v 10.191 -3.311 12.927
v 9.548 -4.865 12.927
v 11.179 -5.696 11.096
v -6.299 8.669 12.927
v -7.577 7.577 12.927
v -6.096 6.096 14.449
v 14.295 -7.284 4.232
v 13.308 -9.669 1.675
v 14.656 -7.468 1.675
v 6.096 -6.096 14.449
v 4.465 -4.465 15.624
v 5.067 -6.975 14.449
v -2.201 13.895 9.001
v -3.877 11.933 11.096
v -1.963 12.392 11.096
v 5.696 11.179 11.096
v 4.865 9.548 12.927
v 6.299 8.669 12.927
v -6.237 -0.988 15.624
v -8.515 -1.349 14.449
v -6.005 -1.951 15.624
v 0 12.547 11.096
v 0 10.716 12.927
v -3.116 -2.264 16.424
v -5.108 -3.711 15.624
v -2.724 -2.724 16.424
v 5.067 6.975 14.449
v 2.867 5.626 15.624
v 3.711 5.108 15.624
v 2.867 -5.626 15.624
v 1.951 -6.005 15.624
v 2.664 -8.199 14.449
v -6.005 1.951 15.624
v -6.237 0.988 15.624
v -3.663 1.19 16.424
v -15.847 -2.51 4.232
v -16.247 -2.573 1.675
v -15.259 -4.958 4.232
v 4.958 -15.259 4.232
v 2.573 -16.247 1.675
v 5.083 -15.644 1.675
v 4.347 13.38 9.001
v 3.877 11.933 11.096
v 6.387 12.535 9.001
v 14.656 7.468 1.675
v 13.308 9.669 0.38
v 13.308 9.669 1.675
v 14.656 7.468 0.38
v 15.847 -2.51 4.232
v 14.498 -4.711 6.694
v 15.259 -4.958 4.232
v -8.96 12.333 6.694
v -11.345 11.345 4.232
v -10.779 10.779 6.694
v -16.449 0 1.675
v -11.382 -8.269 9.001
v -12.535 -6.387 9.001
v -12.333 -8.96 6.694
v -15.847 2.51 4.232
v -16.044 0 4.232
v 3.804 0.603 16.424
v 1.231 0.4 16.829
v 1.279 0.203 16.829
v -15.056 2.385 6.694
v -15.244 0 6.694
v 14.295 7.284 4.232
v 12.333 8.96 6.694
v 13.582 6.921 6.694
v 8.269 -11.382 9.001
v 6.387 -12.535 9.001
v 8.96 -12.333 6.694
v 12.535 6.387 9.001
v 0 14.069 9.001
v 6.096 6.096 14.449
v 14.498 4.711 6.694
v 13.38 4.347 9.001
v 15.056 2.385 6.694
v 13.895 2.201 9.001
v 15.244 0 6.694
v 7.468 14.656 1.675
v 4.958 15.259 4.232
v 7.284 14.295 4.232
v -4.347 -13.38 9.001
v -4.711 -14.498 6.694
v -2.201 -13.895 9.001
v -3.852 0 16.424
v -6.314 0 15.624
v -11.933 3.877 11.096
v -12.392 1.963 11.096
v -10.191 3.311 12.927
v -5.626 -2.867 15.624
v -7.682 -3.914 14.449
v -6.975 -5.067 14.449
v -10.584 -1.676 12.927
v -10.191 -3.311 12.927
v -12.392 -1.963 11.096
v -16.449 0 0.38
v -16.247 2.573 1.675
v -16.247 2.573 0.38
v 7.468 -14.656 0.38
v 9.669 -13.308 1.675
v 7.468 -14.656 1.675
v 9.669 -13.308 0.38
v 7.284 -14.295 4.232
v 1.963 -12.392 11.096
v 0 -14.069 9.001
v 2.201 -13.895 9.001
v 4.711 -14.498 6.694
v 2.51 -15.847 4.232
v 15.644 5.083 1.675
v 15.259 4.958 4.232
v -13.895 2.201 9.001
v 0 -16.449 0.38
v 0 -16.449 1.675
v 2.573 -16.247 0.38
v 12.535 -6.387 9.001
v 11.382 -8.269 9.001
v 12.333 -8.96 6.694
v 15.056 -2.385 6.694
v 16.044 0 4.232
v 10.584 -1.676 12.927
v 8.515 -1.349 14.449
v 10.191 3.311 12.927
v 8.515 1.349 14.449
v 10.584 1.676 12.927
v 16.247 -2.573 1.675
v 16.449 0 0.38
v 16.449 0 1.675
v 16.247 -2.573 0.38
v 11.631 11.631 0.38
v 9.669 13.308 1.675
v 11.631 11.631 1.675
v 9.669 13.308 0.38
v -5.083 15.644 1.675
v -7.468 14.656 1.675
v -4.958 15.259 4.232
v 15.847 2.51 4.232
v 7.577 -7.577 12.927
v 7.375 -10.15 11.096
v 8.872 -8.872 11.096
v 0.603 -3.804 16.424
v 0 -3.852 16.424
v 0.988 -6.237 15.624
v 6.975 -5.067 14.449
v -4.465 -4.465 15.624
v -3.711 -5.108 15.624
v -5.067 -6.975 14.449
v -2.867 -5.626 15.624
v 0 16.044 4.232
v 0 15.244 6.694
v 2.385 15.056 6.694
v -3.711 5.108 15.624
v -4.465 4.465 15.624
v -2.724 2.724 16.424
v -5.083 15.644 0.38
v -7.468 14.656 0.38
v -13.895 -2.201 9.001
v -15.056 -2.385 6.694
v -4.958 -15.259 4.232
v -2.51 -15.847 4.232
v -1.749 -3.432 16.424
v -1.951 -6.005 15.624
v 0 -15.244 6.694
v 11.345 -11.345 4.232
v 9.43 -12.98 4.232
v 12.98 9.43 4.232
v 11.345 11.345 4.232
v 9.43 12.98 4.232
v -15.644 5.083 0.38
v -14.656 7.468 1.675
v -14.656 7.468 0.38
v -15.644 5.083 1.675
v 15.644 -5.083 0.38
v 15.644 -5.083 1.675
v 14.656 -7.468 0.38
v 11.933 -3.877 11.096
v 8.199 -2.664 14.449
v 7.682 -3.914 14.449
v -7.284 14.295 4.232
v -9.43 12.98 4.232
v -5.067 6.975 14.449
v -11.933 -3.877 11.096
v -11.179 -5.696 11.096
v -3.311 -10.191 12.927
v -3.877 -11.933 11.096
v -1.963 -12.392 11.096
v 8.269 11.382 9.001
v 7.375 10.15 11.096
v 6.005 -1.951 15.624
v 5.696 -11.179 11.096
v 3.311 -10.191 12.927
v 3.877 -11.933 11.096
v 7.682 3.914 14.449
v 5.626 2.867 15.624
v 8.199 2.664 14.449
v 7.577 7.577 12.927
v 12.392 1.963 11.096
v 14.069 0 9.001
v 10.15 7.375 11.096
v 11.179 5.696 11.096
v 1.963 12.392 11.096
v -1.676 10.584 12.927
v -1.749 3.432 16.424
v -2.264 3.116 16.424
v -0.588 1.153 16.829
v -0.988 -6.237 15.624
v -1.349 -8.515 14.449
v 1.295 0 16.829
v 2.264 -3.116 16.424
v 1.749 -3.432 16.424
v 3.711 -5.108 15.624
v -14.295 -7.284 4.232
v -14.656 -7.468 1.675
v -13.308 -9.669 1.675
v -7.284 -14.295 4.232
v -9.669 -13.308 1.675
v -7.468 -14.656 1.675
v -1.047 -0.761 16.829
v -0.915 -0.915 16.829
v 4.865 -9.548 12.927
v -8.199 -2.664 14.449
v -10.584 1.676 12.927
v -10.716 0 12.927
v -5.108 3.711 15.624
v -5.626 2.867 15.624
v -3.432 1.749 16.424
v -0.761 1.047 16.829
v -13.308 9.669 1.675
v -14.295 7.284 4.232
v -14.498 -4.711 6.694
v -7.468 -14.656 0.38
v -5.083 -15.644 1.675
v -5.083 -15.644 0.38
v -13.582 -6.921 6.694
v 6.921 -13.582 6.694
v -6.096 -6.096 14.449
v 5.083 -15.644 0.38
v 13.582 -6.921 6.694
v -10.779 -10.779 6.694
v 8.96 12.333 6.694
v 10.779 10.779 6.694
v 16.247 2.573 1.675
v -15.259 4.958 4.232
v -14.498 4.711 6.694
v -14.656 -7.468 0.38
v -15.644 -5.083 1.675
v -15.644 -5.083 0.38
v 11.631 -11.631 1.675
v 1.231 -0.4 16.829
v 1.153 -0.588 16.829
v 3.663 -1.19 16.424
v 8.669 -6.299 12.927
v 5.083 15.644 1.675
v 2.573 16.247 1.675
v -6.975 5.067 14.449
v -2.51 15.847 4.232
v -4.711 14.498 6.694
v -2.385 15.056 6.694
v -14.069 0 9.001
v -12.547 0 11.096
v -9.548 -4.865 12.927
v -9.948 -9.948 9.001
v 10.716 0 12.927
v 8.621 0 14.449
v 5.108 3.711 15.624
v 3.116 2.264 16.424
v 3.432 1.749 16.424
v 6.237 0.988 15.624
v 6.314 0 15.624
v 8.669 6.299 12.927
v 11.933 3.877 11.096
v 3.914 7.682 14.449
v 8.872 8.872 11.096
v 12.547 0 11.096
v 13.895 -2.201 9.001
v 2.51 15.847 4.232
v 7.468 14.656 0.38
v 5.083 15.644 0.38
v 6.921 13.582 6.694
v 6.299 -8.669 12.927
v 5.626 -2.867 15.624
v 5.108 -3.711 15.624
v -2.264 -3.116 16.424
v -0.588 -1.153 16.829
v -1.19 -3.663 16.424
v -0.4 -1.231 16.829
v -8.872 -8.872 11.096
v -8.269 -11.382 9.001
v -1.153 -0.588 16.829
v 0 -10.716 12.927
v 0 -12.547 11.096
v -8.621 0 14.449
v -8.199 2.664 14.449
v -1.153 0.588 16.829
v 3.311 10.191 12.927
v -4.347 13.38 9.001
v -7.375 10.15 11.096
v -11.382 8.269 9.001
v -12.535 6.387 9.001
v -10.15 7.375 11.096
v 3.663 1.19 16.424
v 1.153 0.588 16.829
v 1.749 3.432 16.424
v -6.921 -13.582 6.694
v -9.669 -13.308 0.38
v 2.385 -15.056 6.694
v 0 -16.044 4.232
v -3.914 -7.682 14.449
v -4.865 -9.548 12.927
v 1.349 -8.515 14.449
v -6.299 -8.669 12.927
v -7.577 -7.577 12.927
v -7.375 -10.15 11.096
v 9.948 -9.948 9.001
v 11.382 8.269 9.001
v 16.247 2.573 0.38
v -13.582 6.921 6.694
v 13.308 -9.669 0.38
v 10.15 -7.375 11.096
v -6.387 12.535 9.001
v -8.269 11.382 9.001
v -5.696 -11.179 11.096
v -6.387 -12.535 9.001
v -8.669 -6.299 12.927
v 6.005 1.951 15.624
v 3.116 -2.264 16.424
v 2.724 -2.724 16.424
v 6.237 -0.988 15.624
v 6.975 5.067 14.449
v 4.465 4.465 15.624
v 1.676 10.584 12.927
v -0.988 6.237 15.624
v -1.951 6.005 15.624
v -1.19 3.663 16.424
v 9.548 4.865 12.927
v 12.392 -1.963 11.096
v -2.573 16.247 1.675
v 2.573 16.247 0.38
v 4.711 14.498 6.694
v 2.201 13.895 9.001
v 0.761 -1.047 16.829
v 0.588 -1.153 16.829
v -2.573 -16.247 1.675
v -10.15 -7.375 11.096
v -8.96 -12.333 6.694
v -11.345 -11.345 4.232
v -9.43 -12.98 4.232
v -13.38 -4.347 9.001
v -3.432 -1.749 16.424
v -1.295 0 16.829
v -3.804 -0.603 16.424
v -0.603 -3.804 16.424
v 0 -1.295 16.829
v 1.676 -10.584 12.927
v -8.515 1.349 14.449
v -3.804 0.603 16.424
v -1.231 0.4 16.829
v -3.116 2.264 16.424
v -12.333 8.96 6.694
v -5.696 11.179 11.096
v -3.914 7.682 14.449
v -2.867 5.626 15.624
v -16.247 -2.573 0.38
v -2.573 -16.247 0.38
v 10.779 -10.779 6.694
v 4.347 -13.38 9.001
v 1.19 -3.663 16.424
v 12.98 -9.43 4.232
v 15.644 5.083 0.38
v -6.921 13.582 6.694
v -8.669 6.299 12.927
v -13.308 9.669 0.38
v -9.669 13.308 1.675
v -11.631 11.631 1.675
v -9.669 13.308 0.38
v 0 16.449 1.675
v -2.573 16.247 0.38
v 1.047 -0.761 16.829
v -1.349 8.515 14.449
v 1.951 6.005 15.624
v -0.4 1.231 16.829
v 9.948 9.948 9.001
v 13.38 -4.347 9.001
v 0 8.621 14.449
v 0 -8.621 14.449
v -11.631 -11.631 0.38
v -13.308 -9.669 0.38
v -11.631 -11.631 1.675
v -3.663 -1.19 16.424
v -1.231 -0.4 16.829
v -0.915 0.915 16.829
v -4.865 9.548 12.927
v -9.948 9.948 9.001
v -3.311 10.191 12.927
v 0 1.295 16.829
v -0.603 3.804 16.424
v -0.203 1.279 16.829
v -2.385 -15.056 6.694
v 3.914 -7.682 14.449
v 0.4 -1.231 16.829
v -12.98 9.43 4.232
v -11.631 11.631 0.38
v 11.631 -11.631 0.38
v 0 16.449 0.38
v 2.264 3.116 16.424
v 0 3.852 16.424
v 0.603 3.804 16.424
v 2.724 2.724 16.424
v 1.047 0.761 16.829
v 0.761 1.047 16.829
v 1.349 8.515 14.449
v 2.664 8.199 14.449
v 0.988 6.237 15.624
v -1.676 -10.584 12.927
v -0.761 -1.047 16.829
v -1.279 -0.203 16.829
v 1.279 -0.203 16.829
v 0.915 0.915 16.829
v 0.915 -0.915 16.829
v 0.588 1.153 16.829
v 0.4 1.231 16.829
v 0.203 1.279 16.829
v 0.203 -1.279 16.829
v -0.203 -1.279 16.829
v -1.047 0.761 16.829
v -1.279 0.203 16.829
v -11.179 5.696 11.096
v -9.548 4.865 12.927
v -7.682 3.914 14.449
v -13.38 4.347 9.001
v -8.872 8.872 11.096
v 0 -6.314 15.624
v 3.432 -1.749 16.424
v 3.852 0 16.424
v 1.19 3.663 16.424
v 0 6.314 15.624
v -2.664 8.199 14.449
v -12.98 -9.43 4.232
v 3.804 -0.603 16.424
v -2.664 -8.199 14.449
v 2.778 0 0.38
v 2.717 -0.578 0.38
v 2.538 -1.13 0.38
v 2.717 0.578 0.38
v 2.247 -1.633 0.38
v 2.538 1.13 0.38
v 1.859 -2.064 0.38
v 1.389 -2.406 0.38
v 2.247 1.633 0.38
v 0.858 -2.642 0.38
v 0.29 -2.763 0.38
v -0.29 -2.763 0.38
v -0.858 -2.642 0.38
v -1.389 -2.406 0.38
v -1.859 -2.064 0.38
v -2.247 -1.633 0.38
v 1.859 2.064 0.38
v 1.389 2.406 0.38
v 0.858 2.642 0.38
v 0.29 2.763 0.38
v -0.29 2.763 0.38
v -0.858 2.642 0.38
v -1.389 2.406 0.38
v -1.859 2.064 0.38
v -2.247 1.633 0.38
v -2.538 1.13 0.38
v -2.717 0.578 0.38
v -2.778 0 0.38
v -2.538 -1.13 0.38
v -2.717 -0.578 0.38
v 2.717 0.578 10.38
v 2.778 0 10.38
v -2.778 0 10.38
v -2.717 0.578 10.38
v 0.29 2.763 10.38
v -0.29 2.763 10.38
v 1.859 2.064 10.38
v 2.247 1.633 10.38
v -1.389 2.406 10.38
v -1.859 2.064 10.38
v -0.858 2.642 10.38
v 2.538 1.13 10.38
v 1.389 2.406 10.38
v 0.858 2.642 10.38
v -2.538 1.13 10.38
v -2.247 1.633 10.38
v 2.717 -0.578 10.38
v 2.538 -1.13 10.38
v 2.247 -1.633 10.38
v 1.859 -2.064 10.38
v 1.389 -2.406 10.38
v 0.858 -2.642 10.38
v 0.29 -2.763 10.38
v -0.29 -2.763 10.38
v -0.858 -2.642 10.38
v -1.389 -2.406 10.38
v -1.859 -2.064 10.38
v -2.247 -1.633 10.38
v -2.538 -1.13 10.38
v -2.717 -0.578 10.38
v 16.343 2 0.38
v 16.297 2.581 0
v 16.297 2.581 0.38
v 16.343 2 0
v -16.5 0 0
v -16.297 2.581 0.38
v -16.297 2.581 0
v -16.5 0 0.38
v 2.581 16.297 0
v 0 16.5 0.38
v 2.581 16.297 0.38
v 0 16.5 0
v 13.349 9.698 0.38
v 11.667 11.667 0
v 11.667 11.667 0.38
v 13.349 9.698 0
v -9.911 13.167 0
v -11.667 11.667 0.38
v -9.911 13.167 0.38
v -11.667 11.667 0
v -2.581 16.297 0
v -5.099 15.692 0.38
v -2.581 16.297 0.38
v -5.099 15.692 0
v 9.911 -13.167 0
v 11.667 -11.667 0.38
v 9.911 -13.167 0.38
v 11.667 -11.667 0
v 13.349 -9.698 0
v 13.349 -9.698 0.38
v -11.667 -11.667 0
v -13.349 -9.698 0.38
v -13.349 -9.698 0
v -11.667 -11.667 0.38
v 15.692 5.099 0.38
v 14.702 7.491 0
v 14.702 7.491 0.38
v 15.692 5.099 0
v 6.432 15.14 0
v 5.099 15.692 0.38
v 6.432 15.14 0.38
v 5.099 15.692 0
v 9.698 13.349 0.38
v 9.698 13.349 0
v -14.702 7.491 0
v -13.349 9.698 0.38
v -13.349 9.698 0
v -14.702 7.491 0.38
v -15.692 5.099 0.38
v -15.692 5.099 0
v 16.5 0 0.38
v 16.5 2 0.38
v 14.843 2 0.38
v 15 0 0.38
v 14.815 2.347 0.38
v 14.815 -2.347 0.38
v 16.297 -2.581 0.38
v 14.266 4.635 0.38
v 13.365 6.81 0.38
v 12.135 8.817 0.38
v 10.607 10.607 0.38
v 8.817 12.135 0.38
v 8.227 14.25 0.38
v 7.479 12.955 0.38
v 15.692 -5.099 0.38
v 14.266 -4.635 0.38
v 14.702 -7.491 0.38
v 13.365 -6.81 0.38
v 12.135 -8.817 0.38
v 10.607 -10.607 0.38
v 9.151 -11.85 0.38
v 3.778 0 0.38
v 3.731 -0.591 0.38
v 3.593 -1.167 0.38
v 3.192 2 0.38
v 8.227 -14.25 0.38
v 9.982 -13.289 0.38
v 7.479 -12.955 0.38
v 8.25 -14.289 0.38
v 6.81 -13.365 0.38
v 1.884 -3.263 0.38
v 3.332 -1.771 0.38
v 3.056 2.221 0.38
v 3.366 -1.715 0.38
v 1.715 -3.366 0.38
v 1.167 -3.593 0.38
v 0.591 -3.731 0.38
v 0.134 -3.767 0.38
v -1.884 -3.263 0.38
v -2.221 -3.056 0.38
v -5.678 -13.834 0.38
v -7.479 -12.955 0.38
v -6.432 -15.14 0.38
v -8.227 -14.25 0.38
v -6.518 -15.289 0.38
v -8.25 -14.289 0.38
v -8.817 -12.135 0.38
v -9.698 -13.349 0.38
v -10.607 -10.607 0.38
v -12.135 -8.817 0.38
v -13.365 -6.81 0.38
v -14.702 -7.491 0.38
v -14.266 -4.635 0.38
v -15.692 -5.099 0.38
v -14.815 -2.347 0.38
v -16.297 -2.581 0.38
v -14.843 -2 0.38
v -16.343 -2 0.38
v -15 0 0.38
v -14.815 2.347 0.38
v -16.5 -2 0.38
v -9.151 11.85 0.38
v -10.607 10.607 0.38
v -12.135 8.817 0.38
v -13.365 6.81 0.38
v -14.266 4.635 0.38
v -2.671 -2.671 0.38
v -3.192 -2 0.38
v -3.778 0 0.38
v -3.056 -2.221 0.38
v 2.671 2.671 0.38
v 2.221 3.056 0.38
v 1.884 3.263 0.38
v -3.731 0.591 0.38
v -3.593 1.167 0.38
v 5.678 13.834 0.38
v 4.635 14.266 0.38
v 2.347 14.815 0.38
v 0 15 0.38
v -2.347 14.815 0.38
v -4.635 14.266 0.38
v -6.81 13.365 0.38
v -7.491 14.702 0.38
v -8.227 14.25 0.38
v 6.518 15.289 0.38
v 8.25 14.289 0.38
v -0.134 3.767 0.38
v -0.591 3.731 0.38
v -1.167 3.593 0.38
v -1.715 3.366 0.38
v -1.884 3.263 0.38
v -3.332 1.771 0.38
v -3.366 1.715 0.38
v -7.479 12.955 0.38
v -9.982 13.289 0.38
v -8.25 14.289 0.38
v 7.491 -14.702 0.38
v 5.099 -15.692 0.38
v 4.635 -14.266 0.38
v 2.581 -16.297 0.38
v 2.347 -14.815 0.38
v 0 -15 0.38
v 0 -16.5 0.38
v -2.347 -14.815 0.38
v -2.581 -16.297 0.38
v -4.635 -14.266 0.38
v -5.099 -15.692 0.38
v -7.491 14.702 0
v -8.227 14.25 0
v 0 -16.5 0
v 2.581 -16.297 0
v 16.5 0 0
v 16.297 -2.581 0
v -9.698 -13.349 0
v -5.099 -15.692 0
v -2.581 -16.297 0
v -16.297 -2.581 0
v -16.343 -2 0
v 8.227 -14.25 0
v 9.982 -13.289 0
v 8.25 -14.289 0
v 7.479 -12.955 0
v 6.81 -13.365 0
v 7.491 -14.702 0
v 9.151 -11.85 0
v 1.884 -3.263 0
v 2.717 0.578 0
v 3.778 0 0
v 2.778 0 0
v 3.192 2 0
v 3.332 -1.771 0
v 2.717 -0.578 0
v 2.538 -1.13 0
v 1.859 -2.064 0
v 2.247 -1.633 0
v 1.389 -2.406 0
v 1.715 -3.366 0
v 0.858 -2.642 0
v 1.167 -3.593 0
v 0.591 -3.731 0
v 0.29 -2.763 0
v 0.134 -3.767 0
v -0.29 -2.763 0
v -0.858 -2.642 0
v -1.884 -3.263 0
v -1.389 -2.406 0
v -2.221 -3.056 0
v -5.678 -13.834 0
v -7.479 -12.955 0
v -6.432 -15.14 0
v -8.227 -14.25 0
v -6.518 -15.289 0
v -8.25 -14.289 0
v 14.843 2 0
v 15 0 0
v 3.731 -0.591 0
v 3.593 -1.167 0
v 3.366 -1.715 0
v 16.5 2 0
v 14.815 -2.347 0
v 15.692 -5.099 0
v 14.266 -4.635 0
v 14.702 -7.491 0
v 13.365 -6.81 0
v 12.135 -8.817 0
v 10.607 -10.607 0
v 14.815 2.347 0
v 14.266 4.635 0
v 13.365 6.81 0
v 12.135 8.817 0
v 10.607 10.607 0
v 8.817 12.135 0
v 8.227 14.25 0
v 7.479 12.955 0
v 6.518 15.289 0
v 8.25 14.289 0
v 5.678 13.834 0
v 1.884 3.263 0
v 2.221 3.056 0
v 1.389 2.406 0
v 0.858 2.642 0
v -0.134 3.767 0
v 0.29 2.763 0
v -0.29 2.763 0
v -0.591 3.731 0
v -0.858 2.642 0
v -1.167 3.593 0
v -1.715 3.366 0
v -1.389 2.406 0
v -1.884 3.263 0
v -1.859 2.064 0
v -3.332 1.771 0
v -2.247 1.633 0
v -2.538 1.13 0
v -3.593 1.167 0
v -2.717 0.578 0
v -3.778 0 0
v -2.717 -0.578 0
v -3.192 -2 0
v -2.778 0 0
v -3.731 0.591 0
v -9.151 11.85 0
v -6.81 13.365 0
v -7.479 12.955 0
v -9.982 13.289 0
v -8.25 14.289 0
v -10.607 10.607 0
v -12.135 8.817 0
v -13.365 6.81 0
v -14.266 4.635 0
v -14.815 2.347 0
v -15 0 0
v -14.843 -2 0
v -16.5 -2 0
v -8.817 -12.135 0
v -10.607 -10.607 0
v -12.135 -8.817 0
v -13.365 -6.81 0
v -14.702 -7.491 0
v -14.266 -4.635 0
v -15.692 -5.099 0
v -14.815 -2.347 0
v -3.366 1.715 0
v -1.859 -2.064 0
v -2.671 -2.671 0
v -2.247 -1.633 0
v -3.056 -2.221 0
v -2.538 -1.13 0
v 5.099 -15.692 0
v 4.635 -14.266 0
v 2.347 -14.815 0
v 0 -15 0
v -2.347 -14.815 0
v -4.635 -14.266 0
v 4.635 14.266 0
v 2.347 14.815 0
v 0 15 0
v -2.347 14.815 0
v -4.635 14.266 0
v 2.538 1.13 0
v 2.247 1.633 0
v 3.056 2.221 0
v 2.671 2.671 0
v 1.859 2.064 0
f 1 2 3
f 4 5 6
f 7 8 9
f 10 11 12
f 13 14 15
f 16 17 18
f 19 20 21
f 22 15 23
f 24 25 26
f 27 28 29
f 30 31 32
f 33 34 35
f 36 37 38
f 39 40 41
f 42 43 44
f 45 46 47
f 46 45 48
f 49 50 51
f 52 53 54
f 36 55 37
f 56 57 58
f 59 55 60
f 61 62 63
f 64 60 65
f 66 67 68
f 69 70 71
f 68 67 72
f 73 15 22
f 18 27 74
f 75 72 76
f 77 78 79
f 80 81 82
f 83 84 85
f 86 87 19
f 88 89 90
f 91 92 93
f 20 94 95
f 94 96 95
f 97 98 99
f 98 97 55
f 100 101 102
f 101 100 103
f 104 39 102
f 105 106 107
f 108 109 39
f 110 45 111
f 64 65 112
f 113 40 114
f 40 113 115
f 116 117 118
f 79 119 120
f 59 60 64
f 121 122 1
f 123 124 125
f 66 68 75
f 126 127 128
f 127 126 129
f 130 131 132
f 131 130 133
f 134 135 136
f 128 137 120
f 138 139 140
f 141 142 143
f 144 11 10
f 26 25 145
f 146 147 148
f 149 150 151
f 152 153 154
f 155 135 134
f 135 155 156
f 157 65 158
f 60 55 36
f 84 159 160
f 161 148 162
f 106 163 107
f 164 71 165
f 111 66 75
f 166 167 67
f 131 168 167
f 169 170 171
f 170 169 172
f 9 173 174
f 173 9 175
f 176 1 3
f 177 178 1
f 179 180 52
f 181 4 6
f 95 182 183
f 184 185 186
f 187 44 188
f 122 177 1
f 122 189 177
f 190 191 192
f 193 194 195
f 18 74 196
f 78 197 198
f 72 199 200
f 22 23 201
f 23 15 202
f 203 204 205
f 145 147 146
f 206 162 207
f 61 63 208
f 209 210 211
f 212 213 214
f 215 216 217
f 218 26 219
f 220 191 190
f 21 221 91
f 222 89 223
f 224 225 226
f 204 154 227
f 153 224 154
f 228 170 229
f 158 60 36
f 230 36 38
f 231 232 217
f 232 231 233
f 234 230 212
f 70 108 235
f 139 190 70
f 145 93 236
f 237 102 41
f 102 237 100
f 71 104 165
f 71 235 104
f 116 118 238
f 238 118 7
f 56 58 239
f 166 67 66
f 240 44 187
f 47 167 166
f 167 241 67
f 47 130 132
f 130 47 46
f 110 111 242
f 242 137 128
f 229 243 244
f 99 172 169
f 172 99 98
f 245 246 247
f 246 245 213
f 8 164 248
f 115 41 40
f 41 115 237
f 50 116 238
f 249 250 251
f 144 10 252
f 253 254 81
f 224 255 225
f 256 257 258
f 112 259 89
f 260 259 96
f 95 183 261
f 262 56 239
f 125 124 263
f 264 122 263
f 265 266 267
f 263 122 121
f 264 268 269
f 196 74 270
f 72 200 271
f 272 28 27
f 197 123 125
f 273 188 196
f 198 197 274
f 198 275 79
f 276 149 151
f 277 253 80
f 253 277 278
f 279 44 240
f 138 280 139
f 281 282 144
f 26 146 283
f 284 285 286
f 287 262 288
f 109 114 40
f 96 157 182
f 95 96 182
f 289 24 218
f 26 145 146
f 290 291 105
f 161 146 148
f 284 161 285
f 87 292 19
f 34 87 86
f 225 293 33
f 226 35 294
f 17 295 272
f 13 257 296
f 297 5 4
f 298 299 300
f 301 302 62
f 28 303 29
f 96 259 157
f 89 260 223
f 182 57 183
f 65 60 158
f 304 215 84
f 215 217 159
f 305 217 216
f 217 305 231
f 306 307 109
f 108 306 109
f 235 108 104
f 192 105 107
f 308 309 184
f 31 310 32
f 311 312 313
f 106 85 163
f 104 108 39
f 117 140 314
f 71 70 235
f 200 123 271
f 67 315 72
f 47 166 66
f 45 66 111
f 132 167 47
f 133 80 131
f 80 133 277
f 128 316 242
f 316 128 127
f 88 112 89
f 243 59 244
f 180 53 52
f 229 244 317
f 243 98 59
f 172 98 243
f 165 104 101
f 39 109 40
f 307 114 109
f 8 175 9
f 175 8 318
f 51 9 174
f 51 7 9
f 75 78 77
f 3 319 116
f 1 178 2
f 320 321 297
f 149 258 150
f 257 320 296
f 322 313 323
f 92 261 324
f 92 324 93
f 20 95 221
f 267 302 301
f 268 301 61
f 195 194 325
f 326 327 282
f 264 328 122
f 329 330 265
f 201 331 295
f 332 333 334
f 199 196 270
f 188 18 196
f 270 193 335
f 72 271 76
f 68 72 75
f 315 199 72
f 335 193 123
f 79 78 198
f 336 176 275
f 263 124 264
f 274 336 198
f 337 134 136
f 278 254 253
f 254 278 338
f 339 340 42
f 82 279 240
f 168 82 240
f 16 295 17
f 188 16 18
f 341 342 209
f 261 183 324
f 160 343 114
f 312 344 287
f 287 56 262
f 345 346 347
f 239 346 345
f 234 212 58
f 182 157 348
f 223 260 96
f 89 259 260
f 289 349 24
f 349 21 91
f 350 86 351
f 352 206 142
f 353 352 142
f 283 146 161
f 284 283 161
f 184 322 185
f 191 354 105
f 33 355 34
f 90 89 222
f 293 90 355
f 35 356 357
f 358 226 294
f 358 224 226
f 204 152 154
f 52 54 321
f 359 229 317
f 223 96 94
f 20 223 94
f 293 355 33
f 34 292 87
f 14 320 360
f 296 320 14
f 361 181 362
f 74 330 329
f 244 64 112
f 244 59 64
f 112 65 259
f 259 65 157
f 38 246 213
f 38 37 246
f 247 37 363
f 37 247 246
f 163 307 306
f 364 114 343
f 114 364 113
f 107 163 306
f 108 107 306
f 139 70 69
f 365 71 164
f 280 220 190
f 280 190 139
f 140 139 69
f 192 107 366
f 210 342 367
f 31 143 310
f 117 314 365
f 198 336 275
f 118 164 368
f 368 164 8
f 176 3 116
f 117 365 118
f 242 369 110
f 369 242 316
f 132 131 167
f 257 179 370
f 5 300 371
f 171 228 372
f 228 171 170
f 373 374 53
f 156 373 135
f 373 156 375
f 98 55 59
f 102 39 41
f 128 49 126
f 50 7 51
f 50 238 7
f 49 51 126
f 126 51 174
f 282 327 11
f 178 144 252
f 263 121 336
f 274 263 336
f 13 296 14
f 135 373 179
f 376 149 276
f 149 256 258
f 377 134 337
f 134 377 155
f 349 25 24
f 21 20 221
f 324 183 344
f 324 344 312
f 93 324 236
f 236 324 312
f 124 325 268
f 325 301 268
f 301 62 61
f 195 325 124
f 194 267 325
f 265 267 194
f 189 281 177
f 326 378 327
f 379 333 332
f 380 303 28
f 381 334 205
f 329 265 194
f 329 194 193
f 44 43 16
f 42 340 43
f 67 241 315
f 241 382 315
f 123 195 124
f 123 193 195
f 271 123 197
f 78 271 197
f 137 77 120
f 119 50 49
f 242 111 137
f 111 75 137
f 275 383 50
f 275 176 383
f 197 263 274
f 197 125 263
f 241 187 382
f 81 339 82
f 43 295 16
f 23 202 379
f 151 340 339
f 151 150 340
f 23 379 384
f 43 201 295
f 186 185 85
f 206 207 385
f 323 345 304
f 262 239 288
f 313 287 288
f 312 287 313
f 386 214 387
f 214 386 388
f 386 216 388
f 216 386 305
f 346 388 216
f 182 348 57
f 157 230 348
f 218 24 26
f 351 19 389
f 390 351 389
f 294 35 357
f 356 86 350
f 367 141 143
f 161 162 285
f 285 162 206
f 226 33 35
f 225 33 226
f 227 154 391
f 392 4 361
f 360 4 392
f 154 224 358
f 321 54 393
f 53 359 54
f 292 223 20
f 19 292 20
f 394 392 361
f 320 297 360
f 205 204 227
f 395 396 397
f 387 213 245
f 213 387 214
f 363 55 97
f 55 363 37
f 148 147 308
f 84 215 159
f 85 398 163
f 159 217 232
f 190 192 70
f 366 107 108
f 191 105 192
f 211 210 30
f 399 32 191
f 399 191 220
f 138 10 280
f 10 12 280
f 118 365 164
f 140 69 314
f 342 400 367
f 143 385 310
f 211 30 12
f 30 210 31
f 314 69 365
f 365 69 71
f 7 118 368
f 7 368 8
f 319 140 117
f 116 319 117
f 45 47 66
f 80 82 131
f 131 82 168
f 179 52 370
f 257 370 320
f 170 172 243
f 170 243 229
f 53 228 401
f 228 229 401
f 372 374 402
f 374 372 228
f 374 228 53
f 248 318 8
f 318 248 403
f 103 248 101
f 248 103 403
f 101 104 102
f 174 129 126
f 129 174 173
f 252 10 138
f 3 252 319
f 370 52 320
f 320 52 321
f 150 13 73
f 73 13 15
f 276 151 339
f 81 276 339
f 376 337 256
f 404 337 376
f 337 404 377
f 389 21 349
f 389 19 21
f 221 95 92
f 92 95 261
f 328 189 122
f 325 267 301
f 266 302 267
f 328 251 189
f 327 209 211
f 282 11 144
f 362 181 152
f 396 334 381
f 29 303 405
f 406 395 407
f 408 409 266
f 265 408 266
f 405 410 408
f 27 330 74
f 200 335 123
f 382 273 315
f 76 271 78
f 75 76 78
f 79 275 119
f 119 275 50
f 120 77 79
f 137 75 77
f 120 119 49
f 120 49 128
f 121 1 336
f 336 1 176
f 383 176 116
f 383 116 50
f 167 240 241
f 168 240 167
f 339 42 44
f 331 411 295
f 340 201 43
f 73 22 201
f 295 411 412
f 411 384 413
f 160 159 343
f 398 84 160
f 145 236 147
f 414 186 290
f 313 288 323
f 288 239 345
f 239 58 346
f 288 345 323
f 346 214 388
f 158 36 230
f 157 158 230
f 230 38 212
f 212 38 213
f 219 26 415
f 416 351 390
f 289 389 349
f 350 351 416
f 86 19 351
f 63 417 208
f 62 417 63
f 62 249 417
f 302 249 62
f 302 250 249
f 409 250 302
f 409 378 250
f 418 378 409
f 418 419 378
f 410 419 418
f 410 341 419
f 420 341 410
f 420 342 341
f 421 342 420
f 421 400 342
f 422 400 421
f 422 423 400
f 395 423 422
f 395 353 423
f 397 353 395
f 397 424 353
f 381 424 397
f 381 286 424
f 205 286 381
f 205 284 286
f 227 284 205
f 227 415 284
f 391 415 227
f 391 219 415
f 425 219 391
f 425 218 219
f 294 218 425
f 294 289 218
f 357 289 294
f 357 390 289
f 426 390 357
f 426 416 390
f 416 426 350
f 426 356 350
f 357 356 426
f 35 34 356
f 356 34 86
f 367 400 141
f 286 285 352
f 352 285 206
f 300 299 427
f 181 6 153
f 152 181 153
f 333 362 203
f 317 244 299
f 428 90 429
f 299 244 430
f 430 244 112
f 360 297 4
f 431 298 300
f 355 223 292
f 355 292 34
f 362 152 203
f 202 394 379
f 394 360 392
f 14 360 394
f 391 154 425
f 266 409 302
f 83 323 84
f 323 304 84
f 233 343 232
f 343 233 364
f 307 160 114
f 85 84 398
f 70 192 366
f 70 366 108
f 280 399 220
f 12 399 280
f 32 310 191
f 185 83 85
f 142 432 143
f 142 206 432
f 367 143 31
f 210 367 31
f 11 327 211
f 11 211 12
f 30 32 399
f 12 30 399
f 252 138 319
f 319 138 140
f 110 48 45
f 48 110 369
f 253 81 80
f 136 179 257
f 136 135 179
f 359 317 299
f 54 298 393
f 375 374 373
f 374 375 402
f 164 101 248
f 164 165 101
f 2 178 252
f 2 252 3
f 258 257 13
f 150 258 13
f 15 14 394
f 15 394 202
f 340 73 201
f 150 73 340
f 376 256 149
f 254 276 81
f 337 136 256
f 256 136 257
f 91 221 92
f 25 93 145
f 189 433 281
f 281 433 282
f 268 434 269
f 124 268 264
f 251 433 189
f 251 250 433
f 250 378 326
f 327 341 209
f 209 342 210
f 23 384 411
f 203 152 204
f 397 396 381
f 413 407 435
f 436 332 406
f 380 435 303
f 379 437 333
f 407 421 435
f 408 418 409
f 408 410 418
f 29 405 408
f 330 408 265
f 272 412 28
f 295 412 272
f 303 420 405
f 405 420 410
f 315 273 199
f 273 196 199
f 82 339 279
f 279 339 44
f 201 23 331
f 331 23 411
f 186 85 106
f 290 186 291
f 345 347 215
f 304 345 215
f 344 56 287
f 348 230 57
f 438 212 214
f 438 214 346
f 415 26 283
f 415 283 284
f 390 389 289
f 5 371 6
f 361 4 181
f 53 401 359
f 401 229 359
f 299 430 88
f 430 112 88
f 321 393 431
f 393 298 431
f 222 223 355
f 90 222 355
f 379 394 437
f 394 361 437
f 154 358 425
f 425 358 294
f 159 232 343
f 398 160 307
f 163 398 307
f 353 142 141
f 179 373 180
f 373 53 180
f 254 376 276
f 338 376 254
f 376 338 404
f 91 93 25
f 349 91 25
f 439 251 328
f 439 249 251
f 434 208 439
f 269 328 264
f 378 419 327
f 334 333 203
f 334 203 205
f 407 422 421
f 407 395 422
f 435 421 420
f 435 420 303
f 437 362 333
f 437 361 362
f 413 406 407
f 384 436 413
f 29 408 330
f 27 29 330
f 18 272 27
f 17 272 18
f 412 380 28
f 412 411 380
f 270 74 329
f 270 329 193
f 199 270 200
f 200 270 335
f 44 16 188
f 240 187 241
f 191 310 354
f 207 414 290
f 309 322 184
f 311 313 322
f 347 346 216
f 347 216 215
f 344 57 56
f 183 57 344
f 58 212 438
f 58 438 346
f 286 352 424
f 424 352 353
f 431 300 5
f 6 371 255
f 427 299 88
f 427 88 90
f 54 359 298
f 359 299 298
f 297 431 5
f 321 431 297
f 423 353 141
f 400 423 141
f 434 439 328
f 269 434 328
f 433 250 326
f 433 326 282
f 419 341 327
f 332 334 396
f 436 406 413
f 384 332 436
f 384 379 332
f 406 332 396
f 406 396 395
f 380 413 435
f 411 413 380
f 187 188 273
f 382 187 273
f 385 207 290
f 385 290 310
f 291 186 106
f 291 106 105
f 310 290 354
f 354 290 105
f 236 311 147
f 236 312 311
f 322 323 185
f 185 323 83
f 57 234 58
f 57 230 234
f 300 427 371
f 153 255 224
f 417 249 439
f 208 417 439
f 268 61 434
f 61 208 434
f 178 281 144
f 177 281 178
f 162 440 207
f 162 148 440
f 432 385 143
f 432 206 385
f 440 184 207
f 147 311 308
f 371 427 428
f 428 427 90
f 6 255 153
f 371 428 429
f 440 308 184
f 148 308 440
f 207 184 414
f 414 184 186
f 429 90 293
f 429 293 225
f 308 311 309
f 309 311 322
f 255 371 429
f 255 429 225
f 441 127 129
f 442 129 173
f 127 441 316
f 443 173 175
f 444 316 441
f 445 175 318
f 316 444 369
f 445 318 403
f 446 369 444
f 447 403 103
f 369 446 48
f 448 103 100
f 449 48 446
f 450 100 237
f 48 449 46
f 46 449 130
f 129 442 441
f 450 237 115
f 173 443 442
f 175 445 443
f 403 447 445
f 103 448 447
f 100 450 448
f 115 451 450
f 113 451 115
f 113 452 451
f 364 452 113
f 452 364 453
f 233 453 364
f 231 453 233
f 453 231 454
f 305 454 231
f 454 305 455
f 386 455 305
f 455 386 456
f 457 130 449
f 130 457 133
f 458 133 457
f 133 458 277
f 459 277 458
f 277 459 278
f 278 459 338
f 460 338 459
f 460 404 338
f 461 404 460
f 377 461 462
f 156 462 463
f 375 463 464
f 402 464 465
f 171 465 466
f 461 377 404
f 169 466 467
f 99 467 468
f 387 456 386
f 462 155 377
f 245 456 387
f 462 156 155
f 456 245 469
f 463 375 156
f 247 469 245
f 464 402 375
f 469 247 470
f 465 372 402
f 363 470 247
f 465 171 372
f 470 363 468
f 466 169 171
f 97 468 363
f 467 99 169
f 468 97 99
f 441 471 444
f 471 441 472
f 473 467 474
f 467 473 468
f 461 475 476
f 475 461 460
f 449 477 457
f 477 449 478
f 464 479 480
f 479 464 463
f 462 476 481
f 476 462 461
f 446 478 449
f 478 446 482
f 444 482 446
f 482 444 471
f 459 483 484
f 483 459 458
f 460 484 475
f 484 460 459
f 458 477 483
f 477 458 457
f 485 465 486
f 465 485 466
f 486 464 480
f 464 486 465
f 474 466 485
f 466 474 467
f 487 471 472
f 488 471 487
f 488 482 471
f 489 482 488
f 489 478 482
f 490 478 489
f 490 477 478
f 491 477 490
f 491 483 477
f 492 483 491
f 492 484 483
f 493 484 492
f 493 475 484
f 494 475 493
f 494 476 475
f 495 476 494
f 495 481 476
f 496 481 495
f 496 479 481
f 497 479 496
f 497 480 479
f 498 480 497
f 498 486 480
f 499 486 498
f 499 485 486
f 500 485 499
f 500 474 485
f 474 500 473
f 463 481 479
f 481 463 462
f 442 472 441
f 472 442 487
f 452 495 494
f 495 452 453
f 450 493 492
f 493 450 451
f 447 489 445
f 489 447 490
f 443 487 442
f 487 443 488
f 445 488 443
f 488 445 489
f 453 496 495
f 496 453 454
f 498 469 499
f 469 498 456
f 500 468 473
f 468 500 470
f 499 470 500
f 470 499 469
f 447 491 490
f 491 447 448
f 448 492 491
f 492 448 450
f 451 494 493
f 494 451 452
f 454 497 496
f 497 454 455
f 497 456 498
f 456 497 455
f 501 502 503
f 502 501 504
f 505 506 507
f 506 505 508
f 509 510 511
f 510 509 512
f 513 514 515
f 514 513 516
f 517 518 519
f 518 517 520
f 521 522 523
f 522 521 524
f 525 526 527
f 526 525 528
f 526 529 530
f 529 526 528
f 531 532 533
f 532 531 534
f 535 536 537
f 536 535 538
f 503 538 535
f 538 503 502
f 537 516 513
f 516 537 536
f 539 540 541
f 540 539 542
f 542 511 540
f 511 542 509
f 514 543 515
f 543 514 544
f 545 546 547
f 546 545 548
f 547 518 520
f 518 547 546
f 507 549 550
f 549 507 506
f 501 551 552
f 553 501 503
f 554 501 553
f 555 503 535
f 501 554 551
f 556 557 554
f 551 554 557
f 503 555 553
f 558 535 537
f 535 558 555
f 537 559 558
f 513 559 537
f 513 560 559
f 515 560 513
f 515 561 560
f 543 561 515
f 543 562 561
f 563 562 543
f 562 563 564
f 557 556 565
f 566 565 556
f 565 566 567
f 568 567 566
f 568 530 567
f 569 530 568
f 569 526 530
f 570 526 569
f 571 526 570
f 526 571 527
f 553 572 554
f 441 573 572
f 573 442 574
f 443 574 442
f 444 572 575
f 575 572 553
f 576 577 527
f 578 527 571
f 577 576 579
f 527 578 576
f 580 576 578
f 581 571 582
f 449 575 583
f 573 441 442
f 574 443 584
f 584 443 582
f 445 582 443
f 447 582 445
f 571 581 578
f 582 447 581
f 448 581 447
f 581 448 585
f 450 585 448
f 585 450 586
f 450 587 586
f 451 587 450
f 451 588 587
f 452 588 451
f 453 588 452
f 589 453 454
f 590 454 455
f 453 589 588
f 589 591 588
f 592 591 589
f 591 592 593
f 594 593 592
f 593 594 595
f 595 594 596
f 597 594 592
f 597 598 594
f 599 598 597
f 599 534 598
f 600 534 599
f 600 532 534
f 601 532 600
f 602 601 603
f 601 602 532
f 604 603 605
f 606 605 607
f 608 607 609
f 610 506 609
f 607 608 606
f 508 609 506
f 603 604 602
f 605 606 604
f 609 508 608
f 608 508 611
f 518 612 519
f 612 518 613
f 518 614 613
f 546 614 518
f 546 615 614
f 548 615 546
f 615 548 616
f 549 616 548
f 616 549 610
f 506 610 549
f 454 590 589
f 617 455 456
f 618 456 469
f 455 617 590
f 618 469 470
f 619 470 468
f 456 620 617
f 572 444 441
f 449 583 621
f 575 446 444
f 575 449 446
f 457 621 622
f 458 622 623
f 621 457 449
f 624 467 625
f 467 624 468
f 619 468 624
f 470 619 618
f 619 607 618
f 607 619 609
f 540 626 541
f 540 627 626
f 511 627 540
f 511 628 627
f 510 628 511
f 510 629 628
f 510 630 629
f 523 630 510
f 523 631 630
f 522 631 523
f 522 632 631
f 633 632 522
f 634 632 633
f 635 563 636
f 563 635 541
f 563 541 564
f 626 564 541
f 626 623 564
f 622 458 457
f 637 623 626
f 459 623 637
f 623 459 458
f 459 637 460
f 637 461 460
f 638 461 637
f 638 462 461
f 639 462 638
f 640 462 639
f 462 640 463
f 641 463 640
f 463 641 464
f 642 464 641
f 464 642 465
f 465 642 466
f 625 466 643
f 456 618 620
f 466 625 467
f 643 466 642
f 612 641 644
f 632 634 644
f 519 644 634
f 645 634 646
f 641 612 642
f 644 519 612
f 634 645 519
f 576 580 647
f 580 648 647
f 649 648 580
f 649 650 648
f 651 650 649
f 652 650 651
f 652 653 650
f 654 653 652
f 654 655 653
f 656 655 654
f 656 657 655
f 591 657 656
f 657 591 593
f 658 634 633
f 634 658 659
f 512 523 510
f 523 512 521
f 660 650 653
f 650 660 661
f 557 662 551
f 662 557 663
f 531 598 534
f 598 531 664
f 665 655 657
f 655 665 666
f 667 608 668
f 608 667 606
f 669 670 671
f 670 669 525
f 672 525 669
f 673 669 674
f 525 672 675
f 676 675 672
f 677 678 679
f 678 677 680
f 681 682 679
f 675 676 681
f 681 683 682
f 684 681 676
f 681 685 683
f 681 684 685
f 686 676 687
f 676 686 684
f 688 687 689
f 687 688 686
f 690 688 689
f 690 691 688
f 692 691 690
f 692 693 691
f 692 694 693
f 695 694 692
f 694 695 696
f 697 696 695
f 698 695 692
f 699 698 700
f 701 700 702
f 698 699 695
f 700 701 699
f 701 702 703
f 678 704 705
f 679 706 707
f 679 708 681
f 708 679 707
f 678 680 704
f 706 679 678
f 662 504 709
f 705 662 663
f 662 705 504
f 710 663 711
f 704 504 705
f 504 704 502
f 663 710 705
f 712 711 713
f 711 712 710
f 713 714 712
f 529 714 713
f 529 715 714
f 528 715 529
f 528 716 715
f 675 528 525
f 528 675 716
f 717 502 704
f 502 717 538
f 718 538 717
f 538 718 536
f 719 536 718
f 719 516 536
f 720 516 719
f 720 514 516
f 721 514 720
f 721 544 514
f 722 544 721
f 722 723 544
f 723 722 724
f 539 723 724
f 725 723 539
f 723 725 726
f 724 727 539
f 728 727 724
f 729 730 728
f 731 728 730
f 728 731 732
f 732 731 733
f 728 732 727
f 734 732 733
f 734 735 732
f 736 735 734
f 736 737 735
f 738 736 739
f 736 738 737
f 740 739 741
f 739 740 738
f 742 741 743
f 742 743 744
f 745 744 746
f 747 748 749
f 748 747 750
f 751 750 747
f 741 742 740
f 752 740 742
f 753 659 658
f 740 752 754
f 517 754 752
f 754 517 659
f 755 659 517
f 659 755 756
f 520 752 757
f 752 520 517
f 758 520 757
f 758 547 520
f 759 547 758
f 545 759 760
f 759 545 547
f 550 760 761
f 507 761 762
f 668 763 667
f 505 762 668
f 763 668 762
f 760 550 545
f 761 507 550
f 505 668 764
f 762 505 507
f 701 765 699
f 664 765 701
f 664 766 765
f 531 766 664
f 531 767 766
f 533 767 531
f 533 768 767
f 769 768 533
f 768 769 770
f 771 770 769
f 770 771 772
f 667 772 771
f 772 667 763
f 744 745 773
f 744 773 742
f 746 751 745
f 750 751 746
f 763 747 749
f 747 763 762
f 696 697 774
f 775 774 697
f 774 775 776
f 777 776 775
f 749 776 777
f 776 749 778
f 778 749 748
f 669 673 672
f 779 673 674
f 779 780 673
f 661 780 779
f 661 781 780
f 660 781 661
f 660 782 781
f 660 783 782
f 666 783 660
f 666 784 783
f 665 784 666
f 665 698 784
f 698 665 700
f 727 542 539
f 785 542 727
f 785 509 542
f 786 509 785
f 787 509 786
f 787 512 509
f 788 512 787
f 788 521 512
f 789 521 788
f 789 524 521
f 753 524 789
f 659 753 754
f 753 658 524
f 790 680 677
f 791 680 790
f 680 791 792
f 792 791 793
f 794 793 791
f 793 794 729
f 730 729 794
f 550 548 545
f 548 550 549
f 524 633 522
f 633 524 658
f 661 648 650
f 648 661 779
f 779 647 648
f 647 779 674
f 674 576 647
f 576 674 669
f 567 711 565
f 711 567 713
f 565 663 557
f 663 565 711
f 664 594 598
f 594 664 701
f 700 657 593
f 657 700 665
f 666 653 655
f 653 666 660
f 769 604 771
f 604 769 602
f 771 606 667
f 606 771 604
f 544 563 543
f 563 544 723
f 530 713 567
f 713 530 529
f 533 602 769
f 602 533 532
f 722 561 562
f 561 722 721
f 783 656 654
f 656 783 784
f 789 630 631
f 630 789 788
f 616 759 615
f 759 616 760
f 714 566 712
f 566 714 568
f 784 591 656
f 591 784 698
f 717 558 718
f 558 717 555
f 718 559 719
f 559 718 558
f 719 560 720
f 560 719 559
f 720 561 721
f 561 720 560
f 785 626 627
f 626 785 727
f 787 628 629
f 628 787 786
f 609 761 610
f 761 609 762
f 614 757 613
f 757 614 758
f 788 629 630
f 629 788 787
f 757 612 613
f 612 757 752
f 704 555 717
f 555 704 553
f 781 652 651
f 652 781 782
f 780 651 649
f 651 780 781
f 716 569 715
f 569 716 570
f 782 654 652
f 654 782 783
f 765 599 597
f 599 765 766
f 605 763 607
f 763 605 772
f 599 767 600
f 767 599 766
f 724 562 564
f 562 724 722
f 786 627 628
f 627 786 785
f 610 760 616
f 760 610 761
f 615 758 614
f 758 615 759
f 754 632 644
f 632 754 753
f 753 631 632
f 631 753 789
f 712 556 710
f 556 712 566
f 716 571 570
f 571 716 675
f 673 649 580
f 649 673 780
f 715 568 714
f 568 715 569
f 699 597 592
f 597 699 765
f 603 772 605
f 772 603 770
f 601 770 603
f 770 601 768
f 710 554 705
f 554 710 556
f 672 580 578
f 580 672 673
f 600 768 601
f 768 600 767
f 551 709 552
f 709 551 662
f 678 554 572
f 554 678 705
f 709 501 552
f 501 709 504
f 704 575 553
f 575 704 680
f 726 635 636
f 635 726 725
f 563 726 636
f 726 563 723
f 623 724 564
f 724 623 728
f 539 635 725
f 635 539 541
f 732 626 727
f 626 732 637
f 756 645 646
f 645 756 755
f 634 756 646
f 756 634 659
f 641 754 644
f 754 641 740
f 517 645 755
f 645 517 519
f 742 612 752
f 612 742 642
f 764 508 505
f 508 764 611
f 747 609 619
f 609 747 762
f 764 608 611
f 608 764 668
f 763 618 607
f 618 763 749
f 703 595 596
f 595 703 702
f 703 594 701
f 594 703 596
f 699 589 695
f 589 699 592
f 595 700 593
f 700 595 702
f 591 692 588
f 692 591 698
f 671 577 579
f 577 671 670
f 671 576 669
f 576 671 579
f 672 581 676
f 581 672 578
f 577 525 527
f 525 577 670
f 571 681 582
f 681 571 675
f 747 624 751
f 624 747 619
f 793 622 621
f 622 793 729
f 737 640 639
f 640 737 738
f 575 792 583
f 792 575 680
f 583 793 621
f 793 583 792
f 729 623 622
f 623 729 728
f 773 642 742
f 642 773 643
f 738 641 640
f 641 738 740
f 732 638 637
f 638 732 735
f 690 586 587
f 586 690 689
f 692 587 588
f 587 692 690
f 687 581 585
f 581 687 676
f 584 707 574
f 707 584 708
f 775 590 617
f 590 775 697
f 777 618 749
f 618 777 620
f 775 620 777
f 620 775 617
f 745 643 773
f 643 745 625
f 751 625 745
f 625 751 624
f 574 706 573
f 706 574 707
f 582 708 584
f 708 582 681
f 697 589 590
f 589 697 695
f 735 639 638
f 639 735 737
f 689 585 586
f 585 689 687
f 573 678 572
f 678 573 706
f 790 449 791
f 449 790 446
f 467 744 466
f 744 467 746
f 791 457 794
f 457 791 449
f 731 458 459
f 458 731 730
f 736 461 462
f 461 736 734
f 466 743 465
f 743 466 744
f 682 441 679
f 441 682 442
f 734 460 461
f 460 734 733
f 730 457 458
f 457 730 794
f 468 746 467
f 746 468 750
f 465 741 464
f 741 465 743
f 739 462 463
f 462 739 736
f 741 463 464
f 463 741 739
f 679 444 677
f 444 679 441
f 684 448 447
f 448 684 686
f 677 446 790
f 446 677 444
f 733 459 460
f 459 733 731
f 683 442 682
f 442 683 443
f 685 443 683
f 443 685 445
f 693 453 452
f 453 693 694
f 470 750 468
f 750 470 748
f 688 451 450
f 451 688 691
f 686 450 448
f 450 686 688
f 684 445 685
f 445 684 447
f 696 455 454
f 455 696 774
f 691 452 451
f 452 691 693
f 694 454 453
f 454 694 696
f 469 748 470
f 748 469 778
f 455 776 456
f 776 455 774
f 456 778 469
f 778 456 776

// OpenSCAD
$fn=40;

/**********
* Variables
***********/
BALL_DIAMETER = 33;
INSERT_DRILL_DIAMETER = 5.556;
INSERT_DRILL_DEPTH = 10;



/****************
* Modules
*****************/
module threaded_insert_cutout(h=INSERT_DRILL_DEPTH){
    cylinder(r=(INSERT_DRILL_DIAMETER/2),h, $fn=30);
}

module countersink_end(chg,cod,clf,crs,hg)
{
    translate([0,0,-0.1])
    cylinder(h=chg+0.01, 
             r1=cod/2, 
             r2=cod/2-(chg+0.1)*cos(clf)/sin(clf),
             $fn=floor(cod*PI/crs), center=false);
}


module peel_off_cutout(){
    
    difference(){
        cylinder(d=BALL_DIAMETER, h=.38);
        cylinder(d=BALL_DIAMETER-3, h=.38);
     }
             
     
    difference(){
        union(){
            for(r=[0:(360/6):360]){
                rotate([0,0,r]){
                   translate([0,0,0]){
                        cube([BALL_DIAMETER/2,2,.38]);
                   }
                }
            }
            
            // buffer around insert
            cylinder(d=INSERT_DRILL_DIAMETER+2, h=.38);
        }

        threaded_insert_cutout(h=INSERT_DRILL_DEPTH);
        
    }
    

     

    
}


/************
* Main Render
*************/
translate([0,0,.38]){
    difference(){
        sphere(d=BALL_DIAMETER);
        
        //Cut the floor
        translate([-1*(BALL_DIAMETER/2), 
                    -1*(BALL_DIAMETER/2), 
                    -1*(BALL_DIAMETER)]){
            cube([BALL_DIAMETER,BALL_DIAMETER,BALL_DIAMETER]);
        }
        
        // Threaded Insert hole
        threaded_insert_cutout(h=INSERT_DRILL_DEPTH);

         
    }
}

peel_off_cutout();
